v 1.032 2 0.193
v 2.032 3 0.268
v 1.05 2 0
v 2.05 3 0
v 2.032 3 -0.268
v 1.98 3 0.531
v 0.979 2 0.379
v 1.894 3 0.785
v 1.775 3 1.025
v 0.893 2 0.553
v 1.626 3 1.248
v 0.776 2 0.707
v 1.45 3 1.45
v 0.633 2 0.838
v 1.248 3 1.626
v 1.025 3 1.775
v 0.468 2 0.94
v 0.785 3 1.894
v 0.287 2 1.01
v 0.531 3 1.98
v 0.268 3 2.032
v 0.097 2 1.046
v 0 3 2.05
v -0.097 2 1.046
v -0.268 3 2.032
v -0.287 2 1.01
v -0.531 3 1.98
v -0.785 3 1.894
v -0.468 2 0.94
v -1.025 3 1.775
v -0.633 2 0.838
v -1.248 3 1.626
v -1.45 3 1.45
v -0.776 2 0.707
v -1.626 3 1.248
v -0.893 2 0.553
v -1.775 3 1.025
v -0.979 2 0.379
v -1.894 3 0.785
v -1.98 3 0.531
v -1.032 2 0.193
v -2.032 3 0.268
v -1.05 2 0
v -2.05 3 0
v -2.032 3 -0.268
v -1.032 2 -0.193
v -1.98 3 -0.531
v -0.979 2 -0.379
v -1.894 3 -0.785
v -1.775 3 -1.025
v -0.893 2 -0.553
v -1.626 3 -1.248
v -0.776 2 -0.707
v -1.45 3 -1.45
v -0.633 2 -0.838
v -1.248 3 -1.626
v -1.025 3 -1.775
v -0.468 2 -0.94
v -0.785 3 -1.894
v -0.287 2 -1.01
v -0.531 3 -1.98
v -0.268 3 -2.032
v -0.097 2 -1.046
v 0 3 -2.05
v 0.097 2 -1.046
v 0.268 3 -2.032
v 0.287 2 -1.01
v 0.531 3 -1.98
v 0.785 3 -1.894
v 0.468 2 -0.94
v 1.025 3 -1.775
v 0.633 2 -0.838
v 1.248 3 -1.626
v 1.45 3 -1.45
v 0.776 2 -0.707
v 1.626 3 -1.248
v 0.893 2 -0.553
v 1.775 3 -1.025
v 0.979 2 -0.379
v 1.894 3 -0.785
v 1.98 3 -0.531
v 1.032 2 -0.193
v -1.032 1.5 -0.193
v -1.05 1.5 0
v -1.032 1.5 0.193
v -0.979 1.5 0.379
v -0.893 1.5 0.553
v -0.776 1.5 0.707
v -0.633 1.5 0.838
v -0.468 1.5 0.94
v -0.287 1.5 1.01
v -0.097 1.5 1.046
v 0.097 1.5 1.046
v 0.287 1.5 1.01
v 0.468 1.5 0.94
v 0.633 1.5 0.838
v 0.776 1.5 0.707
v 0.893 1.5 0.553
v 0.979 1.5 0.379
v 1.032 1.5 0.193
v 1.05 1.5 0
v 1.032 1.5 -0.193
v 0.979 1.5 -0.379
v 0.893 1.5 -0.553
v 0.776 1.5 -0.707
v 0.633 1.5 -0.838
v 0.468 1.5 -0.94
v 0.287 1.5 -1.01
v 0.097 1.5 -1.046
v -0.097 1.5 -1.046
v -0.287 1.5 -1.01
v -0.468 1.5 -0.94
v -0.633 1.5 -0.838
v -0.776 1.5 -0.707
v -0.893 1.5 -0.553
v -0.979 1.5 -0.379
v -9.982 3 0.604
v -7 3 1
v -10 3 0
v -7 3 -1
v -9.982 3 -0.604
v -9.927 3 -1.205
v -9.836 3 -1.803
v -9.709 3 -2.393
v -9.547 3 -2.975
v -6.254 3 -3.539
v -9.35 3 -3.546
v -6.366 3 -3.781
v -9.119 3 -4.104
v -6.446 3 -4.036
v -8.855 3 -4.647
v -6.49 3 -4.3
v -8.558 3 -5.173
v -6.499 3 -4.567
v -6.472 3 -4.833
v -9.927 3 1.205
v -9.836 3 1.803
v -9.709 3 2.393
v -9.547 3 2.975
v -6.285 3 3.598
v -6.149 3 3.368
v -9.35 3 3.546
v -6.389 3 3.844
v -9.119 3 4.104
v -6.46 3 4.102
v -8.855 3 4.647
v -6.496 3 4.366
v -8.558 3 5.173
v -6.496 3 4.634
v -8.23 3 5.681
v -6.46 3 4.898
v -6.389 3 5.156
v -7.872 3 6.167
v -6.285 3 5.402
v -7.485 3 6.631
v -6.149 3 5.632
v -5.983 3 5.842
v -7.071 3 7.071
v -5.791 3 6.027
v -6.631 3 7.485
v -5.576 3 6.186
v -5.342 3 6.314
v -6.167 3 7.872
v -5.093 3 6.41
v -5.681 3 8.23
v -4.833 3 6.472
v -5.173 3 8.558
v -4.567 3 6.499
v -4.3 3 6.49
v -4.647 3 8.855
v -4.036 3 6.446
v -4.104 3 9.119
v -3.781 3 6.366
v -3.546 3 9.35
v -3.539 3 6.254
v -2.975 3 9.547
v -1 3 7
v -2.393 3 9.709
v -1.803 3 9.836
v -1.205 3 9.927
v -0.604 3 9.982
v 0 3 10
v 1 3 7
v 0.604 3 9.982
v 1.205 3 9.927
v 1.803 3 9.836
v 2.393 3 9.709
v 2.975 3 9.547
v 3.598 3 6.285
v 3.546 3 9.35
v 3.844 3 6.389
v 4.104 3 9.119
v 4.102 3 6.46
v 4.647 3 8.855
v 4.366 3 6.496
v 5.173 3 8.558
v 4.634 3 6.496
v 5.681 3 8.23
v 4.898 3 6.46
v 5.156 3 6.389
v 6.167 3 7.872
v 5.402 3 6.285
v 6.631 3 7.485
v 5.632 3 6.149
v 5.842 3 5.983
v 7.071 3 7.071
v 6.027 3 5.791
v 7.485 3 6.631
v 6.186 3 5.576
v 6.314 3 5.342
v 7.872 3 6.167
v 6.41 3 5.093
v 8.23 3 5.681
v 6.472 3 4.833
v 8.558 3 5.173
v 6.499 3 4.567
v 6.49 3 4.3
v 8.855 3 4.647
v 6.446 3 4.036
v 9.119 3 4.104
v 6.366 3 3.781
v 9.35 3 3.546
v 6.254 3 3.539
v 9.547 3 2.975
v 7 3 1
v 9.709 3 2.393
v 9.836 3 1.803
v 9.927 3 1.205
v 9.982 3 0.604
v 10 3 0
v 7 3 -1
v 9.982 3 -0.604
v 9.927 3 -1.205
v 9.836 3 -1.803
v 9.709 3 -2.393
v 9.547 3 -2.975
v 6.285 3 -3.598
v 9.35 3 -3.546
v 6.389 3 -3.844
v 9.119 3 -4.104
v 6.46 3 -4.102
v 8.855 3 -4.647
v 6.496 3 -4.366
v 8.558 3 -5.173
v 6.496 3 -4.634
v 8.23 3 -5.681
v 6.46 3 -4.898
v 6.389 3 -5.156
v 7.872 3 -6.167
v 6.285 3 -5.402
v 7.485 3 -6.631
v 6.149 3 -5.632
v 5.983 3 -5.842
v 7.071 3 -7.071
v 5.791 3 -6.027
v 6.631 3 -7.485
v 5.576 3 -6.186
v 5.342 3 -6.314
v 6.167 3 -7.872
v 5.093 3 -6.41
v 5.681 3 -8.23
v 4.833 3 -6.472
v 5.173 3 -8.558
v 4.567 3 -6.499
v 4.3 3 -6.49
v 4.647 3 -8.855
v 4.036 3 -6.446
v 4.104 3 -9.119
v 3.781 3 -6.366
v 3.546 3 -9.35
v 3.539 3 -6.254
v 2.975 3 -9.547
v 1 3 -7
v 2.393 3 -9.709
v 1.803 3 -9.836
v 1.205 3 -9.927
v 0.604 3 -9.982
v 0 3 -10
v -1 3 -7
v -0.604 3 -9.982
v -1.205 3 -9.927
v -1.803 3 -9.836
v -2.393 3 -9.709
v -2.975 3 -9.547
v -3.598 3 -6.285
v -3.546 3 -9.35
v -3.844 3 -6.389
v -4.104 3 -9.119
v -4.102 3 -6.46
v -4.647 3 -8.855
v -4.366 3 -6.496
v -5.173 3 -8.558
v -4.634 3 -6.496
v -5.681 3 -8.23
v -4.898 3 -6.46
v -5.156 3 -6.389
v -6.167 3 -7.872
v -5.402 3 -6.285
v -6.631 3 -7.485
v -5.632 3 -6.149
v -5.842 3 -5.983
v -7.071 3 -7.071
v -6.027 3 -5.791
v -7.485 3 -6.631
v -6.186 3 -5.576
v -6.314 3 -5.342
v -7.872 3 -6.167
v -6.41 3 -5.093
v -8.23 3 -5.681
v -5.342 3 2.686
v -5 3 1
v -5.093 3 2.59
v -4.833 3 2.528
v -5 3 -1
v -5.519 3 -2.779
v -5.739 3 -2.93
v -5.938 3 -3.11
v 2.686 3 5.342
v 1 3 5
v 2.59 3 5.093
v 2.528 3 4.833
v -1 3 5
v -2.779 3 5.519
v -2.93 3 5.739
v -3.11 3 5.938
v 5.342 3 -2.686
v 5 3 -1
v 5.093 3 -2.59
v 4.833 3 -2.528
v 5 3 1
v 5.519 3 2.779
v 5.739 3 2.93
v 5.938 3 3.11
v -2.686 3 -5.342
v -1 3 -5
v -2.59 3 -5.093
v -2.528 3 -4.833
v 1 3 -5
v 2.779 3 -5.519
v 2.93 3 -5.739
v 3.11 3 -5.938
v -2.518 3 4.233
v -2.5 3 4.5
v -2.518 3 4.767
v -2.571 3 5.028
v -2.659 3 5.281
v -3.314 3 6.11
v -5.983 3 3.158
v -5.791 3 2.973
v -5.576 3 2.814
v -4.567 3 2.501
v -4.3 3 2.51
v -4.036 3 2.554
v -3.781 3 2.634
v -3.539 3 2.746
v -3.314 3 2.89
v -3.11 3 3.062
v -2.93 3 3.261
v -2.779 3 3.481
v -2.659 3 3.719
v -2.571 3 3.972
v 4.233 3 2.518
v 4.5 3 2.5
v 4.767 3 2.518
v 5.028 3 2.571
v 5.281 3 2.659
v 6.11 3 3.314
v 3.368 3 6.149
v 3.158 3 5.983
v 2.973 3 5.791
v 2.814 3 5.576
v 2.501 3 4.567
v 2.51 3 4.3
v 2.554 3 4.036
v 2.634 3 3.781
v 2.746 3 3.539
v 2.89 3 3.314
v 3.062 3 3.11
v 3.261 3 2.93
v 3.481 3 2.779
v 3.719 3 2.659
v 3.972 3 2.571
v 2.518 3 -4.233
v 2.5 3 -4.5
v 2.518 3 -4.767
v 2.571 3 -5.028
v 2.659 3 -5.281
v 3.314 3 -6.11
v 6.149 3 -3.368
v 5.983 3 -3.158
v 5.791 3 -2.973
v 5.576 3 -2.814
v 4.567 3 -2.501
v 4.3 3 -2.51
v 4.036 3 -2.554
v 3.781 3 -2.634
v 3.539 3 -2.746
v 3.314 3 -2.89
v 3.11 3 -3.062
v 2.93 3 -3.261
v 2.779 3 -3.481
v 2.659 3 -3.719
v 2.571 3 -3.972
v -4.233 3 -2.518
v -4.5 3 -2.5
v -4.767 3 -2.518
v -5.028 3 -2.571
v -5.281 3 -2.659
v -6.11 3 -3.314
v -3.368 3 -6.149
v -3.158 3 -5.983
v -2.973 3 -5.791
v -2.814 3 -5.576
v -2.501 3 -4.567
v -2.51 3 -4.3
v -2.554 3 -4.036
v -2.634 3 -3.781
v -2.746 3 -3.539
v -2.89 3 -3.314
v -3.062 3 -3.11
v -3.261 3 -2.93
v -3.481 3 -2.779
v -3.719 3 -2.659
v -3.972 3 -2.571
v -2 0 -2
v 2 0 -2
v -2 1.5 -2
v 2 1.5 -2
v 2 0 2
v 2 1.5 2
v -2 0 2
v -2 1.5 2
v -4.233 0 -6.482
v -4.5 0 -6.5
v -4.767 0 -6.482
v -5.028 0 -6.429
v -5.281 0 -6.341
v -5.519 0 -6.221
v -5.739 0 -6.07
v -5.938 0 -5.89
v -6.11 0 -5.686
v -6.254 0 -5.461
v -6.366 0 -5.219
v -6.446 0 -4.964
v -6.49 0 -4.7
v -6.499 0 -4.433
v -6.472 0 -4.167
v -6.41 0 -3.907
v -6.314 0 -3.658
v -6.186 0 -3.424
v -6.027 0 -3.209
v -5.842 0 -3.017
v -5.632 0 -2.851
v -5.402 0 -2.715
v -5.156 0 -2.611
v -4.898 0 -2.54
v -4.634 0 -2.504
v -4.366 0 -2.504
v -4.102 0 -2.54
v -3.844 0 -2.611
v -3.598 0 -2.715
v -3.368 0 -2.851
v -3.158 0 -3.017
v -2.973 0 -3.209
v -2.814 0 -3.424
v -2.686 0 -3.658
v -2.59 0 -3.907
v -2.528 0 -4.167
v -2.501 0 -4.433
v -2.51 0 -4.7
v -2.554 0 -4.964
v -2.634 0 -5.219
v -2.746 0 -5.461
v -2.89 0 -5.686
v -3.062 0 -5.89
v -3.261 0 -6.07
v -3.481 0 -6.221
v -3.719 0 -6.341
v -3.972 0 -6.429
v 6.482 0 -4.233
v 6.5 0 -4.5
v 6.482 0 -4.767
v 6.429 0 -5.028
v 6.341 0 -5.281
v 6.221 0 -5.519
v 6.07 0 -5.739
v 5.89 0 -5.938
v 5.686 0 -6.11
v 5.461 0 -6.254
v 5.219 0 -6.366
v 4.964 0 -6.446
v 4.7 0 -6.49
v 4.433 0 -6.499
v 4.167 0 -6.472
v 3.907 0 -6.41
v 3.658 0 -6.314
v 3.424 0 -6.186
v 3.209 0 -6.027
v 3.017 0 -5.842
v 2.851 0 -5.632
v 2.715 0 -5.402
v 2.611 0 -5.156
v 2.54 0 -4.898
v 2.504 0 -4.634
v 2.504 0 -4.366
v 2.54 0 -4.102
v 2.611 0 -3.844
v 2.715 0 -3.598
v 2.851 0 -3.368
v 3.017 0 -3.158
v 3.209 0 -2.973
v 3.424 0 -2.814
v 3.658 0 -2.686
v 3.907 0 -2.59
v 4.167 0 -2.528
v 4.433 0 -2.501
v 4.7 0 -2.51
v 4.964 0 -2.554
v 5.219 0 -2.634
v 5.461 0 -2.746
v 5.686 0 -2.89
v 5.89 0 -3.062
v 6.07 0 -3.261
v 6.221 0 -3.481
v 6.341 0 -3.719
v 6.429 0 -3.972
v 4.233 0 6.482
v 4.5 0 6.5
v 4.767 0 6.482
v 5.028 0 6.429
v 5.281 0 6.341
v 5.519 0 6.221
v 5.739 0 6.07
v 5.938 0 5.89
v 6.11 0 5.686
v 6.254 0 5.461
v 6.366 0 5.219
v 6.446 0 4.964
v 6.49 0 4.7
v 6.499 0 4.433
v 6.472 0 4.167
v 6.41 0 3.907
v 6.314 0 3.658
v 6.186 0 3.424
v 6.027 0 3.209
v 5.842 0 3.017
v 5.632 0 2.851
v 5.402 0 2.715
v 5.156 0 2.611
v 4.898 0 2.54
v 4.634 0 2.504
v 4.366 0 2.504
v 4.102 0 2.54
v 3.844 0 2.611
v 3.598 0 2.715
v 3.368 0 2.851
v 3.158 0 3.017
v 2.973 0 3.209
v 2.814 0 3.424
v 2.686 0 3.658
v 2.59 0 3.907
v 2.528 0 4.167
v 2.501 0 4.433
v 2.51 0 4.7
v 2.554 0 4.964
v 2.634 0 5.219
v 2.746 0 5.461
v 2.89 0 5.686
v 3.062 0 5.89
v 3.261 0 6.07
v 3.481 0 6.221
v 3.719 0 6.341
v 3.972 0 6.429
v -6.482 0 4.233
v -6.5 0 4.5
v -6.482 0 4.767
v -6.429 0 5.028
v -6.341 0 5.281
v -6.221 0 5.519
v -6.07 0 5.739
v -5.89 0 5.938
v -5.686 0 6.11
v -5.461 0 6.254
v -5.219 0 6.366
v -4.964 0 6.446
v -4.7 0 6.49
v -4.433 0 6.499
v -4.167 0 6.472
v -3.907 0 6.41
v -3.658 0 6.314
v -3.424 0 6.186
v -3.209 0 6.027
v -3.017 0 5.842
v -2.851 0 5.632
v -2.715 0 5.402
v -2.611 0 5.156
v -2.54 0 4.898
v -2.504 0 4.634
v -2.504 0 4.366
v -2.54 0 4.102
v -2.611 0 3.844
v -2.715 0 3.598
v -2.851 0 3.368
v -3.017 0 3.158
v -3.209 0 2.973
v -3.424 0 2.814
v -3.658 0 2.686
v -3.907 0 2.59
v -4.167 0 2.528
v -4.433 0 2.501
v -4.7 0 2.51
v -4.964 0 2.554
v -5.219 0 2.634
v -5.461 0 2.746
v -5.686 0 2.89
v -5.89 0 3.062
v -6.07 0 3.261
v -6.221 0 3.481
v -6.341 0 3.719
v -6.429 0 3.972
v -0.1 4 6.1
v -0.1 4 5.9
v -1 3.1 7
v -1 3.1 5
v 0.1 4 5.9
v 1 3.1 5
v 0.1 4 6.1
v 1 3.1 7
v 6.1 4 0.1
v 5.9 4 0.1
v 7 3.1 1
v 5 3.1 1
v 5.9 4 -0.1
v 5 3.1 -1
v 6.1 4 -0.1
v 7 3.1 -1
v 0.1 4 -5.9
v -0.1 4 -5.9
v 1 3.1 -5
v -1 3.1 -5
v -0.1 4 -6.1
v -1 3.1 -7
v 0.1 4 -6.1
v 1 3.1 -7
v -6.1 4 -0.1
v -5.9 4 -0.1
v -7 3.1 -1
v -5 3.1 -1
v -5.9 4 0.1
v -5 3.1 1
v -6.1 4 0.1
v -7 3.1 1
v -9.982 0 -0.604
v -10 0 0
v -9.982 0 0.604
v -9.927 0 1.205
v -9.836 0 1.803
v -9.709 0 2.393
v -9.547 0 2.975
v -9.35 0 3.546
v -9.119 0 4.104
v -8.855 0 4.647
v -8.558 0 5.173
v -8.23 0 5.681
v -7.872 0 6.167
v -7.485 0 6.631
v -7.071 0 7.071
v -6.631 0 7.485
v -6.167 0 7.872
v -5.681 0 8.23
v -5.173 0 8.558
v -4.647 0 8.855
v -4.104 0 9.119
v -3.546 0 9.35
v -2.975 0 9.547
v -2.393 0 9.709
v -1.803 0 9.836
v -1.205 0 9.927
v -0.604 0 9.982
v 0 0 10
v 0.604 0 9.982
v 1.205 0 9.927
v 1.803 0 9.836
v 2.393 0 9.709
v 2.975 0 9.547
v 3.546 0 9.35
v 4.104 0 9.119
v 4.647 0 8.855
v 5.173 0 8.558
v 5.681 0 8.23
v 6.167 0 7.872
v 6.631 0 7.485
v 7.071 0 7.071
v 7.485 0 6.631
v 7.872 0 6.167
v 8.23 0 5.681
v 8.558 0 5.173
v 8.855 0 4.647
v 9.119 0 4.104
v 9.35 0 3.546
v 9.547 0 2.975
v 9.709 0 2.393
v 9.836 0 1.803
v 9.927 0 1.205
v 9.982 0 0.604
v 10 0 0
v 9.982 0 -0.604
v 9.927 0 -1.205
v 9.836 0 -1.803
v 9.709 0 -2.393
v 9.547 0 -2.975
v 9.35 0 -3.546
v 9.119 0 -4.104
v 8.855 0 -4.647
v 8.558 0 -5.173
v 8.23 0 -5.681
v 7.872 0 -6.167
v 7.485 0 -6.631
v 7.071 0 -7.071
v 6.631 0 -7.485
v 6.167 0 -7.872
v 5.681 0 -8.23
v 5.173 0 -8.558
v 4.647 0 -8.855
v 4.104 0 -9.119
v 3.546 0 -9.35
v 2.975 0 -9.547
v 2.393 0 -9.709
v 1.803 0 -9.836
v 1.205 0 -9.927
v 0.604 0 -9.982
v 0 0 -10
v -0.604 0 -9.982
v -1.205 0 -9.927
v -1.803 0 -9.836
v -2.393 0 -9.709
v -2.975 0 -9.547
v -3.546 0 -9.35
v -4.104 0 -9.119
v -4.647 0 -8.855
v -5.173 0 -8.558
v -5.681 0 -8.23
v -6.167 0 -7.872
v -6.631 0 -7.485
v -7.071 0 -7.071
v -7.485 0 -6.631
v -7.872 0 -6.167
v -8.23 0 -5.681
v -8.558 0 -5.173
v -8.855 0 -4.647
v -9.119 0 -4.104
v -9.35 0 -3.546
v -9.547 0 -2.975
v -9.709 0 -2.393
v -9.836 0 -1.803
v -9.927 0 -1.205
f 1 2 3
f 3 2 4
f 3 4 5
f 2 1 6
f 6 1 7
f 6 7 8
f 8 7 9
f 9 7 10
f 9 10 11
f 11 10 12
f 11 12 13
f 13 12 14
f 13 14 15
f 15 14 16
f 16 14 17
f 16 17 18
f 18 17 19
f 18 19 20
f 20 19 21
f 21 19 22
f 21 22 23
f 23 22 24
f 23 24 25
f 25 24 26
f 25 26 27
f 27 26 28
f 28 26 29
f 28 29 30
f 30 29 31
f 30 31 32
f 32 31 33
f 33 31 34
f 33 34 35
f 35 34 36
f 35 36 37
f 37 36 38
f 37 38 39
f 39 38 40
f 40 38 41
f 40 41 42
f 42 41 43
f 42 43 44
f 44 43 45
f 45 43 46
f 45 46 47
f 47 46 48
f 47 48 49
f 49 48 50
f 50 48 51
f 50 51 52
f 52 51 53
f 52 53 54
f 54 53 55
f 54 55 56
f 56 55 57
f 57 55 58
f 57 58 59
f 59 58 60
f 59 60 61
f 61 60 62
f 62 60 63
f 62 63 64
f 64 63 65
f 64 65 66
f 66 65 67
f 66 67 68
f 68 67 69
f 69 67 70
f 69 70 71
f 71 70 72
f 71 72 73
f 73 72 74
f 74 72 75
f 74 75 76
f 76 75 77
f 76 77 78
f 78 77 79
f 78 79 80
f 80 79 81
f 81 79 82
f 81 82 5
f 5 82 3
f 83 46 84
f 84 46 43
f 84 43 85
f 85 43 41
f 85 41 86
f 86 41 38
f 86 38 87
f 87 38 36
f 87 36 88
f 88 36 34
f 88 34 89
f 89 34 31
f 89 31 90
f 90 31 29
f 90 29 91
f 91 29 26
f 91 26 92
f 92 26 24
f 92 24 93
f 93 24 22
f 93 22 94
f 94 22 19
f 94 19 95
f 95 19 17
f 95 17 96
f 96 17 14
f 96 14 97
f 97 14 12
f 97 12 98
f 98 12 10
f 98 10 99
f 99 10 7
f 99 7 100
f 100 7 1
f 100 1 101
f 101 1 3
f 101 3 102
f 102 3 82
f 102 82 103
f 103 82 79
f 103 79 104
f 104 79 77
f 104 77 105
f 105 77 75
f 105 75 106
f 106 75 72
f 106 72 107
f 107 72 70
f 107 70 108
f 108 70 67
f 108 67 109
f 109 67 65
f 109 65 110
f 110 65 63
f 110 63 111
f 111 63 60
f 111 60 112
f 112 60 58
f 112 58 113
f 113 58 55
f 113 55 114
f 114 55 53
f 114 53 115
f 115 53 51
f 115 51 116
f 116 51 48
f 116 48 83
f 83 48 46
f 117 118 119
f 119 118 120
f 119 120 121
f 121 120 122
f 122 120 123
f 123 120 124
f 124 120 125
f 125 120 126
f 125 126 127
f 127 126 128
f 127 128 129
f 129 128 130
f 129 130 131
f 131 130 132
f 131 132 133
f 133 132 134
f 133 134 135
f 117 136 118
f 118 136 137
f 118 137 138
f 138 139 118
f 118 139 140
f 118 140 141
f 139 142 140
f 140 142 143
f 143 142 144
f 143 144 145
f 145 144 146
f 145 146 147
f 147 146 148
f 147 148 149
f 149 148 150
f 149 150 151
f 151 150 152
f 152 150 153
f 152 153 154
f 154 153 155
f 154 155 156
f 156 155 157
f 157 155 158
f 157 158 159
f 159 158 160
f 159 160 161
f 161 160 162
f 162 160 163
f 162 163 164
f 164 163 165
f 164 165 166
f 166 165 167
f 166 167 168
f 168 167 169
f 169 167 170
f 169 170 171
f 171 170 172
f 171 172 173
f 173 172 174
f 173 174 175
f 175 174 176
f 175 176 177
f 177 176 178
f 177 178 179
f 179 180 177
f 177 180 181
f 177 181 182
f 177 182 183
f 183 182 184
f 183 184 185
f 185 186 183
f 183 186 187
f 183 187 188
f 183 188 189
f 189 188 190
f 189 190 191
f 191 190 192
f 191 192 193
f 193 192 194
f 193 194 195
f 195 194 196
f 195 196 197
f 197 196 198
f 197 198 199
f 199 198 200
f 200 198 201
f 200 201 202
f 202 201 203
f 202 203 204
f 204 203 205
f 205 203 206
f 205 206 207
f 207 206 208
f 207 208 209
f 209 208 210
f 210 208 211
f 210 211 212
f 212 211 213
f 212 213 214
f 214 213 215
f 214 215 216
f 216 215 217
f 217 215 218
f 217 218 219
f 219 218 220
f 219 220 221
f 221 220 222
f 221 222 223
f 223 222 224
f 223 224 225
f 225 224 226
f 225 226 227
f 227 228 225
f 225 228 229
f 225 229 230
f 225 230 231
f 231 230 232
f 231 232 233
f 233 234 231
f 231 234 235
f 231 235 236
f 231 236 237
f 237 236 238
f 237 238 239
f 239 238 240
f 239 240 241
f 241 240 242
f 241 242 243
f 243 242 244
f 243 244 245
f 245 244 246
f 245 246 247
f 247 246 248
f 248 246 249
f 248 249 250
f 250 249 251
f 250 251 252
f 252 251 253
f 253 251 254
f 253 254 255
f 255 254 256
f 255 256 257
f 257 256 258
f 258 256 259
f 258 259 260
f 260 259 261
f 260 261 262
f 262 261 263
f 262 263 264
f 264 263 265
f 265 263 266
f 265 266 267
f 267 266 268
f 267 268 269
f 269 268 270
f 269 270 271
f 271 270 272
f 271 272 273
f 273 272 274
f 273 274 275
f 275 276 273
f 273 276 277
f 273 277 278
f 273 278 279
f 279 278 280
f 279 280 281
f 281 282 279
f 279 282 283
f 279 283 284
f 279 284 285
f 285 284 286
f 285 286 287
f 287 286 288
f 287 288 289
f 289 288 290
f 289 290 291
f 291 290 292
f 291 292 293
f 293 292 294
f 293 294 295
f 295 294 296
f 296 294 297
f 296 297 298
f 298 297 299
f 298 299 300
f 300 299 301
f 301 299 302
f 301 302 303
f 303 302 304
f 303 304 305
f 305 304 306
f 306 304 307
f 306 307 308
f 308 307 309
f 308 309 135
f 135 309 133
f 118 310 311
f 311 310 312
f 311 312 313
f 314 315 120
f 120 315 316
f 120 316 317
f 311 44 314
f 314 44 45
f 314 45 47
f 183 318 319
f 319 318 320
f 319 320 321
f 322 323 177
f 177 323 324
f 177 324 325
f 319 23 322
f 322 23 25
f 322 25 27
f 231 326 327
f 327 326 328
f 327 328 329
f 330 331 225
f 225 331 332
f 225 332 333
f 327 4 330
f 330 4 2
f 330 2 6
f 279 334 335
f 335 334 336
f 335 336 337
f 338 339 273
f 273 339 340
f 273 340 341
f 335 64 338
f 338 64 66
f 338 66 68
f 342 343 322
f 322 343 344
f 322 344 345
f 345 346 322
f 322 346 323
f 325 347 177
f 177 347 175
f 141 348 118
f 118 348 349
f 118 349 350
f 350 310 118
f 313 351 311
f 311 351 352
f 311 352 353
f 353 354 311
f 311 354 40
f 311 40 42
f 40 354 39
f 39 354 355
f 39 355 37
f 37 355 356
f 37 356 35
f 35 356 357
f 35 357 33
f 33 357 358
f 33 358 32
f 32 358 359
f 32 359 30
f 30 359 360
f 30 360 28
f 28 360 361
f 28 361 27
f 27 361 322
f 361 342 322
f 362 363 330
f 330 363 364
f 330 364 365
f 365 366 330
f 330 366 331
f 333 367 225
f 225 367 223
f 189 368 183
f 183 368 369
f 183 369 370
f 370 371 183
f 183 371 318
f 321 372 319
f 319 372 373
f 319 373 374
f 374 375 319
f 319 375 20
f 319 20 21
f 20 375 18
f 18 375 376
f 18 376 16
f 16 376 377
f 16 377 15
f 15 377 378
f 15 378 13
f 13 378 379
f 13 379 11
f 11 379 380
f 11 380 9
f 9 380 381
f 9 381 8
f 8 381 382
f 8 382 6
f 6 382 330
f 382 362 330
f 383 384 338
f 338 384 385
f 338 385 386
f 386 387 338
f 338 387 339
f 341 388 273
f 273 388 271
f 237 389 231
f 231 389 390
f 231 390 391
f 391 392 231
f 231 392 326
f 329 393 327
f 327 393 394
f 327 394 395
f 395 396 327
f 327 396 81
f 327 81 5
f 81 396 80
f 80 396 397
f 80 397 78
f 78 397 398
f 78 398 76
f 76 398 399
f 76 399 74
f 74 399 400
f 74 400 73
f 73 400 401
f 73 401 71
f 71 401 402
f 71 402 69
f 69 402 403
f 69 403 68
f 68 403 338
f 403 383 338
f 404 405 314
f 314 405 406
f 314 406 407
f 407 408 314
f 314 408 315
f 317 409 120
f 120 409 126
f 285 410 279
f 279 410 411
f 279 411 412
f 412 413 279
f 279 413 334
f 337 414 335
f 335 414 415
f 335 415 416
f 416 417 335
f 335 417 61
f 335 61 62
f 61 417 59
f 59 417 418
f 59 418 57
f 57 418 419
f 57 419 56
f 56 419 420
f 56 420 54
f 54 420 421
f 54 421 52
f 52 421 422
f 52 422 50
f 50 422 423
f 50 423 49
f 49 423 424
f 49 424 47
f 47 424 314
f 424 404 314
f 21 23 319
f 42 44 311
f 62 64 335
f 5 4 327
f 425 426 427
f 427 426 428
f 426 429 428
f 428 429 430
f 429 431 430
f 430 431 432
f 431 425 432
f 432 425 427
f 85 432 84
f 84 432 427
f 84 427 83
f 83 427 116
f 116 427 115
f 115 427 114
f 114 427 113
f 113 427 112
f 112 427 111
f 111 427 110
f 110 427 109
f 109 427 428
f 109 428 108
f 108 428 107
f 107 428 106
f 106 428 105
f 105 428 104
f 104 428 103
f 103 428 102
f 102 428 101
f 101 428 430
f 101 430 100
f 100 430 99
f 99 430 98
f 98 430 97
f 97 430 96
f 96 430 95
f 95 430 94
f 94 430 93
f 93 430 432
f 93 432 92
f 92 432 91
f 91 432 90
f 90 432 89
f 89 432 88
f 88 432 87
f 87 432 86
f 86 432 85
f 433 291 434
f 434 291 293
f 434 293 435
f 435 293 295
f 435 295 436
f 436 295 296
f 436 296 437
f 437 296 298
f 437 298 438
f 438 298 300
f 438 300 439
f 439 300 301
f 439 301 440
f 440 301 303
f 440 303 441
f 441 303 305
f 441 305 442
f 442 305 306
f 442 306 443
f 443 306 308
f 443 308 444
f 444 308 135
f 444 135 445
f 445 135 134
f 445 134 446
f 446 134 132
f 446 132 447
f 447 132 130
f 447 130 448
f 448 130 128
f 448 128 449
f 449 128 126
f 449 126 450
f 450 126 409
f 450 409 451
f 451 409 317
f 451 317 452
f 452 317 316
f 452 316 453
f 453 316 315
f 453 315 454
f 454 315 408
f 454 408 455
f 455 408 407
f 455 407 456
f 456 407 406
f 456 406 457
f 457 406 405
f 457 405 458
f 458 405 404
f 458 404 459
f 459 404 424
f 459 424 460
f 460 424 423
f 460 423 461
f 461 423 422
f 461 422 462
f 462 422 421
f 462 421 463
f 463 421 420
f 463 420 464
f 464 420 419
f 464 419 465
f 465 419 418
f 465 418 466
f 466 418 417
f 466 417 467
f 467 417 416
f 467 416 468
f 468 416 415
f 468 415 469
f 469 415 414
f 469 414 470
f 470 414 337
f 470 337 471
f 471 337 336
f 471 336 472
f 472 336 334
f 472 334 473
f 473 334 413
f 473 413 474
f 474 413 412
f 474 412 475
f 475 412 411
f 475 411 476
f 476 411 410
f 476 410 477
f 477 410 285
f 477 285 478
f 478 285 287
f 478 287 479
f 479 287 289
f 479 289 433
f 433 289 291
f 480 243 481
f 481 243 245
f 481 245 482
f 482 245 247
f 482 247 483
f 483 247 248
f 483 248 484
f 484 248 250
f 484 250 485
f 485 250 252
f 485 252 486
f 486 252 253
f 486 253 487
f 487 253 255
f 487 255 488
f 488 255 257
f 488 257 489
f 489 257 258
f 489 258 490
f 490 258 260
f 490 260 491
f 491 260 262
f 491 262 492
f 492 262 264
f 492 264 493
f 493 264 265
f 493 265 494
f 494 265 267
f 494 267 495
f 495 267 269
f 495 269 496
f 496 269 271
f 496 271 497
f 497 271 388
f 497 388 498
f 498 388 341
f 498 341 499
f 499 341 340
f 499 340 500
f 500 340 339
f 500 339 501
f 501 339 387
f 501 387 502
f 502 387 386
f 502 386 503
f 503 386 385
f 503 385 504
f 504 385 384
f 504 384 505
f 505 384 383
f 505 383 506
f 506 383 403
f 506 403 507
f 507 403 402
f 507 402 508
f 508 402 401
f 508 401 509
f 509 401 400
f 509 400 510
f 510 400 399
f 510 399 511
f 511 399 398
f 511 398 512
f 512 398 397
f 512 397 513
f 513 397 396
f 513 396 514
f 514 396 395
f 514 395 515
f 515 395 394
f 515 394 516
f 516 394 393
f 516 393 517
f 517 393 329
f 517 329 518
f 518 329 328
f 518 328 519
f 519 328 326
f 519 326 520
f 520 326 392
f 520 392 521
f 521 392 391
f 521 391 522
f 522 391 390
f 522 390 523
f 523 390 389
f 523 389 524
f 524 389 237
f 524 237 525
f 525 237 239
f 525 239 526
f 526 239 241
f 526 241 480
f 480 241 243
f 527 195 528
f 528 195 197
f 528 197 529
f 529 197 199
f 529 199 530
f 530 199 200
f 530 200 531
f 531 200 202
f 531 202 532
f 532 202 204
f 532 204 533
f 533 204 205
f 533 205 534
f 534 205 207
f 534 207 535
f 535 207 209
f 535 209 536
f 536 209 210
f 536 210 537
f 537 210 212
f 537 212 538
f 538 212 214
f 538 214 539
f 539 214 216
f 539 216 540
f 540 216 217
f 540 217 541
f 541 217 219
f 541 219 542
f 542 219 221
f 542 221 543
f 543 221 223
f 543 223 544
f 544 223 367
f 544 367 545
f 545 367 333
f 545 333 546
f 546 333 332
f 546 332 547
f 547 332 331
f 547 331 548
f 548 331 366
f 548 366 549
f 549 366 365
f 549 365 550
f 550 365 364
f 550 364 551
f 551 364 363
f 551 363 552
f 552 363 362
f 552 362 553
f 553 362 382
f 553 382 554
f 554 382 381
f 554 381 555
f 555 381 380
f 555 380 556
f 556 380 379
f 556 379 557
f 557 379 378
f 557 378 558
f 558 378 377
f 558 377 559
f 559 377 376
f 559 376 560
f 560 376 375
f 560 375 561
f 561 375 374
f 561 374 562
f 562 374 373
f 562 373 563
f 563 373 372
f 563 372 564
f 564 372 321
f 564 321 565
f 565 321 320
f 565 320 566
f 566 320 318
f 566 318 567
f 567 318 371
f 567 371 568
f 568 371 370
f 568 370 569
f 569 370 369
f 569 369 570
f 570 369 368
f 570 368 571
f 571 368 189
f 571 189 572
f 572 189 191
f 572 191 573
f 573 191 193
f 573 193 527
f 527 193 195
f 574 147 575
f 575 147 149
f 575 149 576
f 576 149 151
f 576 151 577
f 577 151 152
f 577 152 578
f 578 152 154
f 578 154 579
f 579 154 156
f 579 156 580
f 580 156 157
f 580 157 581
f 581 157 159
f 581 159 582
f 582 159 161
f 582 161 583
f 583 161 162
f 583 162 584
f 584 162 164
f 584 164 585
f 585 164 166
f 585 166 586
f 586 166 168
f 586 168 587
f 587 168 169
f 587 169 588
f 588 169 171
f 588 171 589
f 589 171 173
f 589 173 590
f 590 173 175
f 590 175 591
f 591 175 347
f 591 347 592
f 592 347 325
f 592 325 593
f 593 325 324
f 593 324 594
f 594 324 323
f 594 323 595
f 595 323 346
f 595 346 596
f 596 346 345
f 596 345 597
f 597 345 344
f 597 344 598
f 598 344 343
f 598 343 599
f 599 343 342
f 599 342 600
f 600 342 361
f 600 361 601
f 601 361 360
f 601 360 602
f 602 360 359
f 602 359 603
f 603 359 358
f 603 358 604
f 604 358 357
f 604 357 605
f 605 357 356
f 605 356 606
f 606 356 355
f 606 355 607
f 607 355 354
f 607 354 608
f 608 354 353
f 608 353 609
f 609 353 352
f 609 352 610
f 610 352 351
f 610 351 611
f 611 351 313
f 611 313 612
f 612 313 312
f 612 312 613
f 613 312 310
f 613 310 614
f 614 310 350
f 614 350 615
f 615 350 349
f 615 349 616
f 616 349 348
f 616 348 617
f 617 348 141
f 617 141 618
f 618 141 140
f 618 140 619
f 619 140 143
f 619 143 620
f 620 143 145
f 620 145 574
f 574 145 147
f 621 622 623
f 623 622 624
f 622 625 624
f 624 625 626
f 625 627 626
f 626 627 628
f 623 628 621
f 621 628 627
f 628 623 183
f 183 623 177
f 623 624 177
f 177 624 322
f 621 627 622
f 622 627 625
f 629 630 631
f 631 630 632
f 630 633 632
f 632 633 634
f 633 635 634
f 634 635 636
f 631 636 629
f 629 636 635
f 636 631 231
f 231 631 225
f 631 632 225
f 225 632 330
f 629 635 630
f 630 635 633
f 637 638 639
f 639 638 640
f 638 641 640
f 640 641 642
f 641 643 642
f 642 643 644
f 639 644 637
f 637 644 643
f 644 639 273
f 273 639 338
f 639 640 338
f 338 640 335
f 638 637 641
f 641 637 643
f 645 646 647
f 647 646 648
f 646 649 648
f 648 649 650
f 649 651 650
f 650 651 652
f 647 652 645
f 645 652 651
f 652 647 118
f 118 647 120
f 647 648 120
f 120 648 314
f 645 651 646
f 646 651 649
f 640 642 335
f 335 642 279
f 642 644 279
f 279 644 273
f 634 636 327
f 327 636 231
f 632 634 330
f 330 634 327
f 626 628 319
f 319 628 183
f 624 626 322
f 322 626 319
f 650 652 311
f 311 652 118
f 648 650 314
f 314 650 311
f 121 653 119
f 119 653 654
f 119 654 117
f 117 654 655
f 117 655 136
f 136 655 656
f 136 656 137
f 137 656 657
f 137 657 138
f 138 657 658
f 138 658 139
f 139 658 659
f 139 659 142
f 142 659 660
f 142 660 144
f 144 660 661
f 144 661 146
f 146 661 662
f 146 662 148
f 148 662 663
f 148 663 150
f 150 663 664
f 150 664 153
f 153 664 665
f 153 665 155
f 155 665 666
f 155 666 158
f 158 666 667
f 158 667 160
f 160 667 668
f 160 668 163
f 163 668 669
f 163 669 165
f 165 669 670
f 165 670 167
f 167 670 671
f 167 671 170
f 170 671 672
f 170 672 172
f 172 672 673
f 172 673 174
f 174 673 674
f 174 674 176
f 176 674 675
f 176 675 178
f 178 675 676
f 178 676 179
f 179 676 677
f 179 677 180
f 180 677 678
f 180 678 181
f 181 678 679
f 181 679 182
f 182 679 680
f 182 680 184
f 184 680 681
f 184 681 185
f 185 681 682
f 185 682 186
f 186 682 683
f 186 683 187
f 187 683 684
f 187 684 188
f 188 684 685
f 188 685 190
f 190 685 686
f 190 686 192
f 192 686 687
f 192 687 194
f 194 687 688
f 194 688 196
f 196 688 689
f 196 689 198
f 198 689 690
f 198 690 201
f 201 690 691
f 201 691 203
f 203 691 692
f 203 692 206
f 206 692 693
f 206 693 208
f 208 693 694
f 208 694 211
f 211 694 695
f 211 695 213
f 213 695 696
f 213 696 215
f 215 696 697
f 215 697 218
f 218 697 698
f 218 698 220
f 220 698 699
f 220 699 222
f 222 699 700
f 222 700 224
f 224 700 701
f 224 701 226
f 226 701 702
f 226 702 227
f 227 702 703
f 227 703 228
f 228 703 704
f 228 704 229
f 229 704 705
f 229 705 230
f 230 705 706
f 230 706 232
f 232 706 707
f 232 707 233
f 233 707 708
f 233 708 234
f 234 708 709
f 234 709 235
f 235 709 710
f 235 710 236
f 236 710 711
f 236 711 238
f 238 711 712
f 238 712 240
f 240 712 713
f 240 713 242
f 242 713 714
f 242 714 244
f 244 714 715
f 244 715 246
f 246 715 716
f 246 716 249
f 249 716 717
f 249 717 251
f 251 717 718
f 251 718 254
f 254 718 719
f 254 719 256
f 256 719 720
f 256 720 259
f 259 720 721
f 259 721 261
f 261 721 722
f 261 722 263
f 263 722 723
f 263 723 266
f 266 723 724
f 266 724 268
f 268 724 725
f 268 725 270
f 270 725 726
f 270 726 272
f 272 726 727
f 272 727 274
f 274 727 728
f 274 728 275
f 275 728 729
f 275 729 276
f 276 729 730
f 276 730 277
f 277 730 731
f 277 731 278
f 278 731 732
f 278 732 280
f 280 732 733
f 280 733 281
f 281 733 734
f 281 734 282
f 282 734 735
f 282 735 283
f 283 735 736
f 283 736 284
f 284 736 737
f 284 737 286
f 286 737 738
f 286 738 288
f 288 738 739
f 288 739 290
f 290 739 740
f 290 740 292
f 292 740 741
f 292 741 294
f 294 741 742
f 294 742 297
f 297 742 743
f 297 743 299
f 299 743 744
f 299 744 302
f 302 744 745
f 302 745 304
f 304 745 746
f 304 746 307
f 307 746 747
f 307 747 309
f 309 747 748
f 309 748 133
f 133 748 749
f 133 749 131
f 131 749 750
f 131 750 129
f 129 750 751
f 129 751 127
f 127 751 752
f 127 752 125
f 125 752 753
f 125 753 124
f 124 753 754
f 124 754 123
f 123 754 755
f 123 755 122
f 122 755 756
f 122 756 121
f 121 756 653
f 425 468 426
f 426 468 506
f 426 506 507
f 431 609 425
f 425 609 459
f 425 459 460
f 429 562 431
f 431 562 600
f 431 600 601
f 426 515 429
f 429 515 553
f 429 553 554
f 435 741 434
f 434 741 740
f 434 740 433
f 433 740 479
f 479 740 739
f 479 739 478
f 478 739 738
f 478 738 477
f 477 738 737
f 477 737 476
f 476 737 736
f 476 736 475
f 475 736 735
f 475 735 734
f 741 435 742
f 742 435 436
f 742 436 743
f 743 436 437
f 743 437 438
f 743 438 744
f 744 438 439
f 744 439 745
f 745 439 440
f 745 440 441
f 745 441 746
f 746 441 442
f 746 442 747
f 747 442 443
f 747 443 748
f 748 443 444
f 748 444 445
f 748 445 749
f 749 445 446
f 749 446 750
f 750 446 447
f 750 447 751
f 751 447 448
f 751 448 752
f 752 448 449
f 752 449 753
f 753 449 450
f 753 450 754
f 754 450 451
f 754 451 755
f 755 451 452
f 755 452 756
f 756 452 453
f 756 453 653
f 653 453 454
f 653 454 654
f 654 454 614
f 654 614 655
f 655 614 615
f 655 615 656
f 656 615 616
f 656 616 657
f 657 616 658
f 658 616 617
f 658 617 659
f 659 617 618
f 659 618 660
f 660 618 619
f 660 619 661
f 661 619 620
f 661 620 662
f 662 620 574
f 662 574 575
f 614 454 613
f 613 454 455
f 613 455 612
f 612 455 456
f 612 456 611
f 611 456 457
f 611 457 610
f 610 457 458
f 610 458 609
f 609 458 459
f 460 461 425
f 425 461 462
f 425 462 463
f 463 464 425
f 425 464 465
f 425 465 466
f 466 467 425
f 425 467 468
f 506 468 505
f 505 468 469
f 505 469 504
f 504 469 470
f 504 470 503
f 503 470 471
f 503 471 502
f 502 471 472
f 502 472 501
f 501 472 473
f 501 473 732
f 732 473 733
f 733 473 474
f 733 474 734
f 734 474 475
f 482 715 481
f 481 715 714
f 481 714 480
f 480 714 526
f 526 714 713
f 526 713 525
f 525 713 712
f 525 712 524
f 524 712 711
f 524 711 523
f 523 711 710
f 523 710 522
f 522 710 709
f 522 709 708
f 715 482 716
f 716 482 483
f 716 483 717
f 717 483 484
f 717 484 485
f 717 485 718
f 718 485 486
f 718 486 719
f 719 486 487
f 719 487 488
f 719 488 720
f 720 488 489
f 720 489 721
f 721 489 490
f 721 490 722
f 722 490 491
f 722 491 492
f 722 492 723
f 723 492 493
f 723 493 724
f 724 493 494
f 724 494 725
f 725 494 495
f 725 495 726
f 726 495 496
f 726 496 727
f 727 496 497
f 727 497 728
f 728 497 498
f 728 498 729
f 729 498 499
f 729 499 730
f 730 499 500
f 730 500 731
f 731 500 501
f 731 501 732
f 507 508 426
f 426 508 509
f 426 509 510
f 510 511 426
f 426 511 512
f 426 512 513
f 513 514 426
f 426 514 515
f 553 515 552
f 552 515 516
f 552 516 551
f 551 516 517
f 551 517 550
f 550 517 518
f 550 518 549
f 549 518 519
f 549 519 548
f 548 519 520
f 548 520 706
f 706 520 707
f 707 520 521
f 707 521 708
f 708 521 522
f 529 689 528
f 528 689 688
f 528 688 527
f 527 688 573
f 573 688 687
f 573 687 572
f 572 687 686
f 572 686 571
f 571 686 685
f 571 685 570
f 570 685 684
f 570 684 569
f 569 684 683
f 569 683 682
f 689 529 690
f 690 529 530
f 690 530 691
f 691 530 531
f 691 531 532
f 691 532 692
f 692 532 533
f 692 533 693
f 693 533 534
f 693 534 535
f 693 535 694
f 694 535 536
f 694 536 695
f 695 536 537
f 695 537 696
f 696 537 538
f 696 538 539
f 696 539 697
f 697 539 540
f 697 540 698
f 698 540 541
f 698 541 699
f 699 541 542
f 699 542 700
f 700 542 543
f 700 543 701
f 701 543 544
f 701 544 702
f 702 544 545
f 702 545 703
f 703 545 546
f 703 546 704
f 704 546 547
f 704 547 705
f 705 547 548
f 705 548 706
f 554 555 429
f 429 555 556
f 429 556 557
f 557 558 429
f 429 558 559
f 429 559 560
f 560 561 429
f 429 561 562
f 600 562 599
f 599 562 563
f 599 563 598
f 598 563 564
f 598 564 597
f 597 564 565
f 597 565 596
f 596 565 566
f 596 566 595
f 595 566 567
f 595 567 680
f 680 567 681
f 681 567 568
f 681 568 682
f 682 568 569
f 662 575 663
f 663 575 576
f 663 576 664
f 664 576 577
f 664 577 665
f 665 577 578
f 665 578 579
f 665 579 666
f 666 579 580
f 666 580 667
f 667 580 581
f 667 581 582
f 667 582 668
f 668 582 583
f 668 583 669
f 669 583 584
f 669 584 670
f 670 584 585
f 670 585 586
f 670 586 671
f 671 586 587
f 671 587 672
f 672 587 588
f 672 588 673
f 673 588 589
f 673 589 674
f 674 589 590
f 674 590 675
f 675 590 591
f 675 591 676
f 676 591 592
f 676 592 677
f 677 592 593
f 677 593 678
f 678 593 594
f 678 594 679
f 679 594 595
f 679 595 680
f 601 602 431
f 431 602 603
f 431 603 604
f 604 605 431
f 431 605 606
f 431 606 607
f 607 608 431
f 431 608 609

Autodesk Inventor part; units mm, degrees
ref_plane "YZ Plane" through (0, 0, 0) normal (1, 0, 0) x (0, 1, 0)
ref_plane "XZ Plane" through (0, 0, 0) normal (0, 1, 0) x (-1, 0, 0)
ref_plane "XY Plane" through (0, 0, 0) normal (0, 0, 1) x (1, 0, 0)
sketch "Sketch1" plane through (0, 0, 0) normal (0, 1, 0) x (-1, 0, 0)
  circle A0 centre (0, 0) radius 10
  dimension "d0" = 20
extrude "Extrusion1" add sketch "Sketch1" along normal blind 3
sketch "Sketch2" plane through (0, 3, 0) normal (0, 1, 0) x (1, 0, 0)
  line L0 (-7, -1) -> (-5, -1)
  line L1 (-5, -1) -> (-5, 1)
  line L2 (-5, 1) -> (-7, 1)
  line L3 (-7, 1) -> (-7, -1)
  point P0 (0, 0)
  dimension "d3" = 2
  dimension "d4" = 2
  dimension "d5" = 5
  dimension "d6" = 1
extrude "Extrusion2" add sketch "Sketch2" along normal blind 1
pattern_circular "Circular Pattern2" count 4 over 360 about axis through (0, 0, 0) along (0, 1, 0) of "Extrusion2"
chamfer "Chamfer3" distance 0.9 angle 45 16 edges at (-6, 4, 1) (-5, 4, 0) (-6, 4, -1) (-7, 4, 0) (0, 4, -5) (-1, 4, -6) (0, 4, -7) (1, 4, -6) (6, 4, -1) (7, 4, 0) (5, 4, 0) (6, 4, 1) (1, 4, 6) (-1, 4, 6) (0, 4, 5) (0, 4, 7)
sketch "Sketch3" plane through (0, 3, 0) normal (0, 1, 0) x (1, 0, 0)
  circle A0 centre (-4.5, -4.5) radius 2
  point P0 (0, 0)
  dimension "d24" = 4
  dimension "d25" = 4.5
  dimension "d26" = 4.5
extrude "Extrusion3" cut sketch "Sketch3" against normal through all
pattern_circular "Circular Pattern3" count 4 over 360 about axis through (0, 0, 0) along (0, 1, 0) of "Extrusion3"
sketch "Sketch5" plane through (0, 0, 0) normal (0, -1, 0) x (1, 0, 0)
  line L0 (-2, -2) -> (2, -2)
  line L1 (2, -2) -> (2, 2)
  line L2 (2, 2) -> (-2, 2)
  line L3 (-2, 2) -> (-2, -2)
  point P0 (0, 0)
  dimension "d39" = 4
  dimension "d40" = 4
  dimension "d41" = 2
  dimension "d42" = 2
extrude "Extrusion5" cut sketch "Sketch5" against normal blind 1.5
sketch "Sketch6" plane through (0, 3, 0) normal (0, 1, 0) x (1, 0, 0)
  circle A0 centre (0, 0) radius 1.05
  dimension "d45" = 2.1
extrude "Extrusion6" cut sketch "Sketch6" against normal through all
chamfer "Chamfer4" distance 1 angle 45 1 edges at (-1.05, 3, 0)
properties part number "dent"
